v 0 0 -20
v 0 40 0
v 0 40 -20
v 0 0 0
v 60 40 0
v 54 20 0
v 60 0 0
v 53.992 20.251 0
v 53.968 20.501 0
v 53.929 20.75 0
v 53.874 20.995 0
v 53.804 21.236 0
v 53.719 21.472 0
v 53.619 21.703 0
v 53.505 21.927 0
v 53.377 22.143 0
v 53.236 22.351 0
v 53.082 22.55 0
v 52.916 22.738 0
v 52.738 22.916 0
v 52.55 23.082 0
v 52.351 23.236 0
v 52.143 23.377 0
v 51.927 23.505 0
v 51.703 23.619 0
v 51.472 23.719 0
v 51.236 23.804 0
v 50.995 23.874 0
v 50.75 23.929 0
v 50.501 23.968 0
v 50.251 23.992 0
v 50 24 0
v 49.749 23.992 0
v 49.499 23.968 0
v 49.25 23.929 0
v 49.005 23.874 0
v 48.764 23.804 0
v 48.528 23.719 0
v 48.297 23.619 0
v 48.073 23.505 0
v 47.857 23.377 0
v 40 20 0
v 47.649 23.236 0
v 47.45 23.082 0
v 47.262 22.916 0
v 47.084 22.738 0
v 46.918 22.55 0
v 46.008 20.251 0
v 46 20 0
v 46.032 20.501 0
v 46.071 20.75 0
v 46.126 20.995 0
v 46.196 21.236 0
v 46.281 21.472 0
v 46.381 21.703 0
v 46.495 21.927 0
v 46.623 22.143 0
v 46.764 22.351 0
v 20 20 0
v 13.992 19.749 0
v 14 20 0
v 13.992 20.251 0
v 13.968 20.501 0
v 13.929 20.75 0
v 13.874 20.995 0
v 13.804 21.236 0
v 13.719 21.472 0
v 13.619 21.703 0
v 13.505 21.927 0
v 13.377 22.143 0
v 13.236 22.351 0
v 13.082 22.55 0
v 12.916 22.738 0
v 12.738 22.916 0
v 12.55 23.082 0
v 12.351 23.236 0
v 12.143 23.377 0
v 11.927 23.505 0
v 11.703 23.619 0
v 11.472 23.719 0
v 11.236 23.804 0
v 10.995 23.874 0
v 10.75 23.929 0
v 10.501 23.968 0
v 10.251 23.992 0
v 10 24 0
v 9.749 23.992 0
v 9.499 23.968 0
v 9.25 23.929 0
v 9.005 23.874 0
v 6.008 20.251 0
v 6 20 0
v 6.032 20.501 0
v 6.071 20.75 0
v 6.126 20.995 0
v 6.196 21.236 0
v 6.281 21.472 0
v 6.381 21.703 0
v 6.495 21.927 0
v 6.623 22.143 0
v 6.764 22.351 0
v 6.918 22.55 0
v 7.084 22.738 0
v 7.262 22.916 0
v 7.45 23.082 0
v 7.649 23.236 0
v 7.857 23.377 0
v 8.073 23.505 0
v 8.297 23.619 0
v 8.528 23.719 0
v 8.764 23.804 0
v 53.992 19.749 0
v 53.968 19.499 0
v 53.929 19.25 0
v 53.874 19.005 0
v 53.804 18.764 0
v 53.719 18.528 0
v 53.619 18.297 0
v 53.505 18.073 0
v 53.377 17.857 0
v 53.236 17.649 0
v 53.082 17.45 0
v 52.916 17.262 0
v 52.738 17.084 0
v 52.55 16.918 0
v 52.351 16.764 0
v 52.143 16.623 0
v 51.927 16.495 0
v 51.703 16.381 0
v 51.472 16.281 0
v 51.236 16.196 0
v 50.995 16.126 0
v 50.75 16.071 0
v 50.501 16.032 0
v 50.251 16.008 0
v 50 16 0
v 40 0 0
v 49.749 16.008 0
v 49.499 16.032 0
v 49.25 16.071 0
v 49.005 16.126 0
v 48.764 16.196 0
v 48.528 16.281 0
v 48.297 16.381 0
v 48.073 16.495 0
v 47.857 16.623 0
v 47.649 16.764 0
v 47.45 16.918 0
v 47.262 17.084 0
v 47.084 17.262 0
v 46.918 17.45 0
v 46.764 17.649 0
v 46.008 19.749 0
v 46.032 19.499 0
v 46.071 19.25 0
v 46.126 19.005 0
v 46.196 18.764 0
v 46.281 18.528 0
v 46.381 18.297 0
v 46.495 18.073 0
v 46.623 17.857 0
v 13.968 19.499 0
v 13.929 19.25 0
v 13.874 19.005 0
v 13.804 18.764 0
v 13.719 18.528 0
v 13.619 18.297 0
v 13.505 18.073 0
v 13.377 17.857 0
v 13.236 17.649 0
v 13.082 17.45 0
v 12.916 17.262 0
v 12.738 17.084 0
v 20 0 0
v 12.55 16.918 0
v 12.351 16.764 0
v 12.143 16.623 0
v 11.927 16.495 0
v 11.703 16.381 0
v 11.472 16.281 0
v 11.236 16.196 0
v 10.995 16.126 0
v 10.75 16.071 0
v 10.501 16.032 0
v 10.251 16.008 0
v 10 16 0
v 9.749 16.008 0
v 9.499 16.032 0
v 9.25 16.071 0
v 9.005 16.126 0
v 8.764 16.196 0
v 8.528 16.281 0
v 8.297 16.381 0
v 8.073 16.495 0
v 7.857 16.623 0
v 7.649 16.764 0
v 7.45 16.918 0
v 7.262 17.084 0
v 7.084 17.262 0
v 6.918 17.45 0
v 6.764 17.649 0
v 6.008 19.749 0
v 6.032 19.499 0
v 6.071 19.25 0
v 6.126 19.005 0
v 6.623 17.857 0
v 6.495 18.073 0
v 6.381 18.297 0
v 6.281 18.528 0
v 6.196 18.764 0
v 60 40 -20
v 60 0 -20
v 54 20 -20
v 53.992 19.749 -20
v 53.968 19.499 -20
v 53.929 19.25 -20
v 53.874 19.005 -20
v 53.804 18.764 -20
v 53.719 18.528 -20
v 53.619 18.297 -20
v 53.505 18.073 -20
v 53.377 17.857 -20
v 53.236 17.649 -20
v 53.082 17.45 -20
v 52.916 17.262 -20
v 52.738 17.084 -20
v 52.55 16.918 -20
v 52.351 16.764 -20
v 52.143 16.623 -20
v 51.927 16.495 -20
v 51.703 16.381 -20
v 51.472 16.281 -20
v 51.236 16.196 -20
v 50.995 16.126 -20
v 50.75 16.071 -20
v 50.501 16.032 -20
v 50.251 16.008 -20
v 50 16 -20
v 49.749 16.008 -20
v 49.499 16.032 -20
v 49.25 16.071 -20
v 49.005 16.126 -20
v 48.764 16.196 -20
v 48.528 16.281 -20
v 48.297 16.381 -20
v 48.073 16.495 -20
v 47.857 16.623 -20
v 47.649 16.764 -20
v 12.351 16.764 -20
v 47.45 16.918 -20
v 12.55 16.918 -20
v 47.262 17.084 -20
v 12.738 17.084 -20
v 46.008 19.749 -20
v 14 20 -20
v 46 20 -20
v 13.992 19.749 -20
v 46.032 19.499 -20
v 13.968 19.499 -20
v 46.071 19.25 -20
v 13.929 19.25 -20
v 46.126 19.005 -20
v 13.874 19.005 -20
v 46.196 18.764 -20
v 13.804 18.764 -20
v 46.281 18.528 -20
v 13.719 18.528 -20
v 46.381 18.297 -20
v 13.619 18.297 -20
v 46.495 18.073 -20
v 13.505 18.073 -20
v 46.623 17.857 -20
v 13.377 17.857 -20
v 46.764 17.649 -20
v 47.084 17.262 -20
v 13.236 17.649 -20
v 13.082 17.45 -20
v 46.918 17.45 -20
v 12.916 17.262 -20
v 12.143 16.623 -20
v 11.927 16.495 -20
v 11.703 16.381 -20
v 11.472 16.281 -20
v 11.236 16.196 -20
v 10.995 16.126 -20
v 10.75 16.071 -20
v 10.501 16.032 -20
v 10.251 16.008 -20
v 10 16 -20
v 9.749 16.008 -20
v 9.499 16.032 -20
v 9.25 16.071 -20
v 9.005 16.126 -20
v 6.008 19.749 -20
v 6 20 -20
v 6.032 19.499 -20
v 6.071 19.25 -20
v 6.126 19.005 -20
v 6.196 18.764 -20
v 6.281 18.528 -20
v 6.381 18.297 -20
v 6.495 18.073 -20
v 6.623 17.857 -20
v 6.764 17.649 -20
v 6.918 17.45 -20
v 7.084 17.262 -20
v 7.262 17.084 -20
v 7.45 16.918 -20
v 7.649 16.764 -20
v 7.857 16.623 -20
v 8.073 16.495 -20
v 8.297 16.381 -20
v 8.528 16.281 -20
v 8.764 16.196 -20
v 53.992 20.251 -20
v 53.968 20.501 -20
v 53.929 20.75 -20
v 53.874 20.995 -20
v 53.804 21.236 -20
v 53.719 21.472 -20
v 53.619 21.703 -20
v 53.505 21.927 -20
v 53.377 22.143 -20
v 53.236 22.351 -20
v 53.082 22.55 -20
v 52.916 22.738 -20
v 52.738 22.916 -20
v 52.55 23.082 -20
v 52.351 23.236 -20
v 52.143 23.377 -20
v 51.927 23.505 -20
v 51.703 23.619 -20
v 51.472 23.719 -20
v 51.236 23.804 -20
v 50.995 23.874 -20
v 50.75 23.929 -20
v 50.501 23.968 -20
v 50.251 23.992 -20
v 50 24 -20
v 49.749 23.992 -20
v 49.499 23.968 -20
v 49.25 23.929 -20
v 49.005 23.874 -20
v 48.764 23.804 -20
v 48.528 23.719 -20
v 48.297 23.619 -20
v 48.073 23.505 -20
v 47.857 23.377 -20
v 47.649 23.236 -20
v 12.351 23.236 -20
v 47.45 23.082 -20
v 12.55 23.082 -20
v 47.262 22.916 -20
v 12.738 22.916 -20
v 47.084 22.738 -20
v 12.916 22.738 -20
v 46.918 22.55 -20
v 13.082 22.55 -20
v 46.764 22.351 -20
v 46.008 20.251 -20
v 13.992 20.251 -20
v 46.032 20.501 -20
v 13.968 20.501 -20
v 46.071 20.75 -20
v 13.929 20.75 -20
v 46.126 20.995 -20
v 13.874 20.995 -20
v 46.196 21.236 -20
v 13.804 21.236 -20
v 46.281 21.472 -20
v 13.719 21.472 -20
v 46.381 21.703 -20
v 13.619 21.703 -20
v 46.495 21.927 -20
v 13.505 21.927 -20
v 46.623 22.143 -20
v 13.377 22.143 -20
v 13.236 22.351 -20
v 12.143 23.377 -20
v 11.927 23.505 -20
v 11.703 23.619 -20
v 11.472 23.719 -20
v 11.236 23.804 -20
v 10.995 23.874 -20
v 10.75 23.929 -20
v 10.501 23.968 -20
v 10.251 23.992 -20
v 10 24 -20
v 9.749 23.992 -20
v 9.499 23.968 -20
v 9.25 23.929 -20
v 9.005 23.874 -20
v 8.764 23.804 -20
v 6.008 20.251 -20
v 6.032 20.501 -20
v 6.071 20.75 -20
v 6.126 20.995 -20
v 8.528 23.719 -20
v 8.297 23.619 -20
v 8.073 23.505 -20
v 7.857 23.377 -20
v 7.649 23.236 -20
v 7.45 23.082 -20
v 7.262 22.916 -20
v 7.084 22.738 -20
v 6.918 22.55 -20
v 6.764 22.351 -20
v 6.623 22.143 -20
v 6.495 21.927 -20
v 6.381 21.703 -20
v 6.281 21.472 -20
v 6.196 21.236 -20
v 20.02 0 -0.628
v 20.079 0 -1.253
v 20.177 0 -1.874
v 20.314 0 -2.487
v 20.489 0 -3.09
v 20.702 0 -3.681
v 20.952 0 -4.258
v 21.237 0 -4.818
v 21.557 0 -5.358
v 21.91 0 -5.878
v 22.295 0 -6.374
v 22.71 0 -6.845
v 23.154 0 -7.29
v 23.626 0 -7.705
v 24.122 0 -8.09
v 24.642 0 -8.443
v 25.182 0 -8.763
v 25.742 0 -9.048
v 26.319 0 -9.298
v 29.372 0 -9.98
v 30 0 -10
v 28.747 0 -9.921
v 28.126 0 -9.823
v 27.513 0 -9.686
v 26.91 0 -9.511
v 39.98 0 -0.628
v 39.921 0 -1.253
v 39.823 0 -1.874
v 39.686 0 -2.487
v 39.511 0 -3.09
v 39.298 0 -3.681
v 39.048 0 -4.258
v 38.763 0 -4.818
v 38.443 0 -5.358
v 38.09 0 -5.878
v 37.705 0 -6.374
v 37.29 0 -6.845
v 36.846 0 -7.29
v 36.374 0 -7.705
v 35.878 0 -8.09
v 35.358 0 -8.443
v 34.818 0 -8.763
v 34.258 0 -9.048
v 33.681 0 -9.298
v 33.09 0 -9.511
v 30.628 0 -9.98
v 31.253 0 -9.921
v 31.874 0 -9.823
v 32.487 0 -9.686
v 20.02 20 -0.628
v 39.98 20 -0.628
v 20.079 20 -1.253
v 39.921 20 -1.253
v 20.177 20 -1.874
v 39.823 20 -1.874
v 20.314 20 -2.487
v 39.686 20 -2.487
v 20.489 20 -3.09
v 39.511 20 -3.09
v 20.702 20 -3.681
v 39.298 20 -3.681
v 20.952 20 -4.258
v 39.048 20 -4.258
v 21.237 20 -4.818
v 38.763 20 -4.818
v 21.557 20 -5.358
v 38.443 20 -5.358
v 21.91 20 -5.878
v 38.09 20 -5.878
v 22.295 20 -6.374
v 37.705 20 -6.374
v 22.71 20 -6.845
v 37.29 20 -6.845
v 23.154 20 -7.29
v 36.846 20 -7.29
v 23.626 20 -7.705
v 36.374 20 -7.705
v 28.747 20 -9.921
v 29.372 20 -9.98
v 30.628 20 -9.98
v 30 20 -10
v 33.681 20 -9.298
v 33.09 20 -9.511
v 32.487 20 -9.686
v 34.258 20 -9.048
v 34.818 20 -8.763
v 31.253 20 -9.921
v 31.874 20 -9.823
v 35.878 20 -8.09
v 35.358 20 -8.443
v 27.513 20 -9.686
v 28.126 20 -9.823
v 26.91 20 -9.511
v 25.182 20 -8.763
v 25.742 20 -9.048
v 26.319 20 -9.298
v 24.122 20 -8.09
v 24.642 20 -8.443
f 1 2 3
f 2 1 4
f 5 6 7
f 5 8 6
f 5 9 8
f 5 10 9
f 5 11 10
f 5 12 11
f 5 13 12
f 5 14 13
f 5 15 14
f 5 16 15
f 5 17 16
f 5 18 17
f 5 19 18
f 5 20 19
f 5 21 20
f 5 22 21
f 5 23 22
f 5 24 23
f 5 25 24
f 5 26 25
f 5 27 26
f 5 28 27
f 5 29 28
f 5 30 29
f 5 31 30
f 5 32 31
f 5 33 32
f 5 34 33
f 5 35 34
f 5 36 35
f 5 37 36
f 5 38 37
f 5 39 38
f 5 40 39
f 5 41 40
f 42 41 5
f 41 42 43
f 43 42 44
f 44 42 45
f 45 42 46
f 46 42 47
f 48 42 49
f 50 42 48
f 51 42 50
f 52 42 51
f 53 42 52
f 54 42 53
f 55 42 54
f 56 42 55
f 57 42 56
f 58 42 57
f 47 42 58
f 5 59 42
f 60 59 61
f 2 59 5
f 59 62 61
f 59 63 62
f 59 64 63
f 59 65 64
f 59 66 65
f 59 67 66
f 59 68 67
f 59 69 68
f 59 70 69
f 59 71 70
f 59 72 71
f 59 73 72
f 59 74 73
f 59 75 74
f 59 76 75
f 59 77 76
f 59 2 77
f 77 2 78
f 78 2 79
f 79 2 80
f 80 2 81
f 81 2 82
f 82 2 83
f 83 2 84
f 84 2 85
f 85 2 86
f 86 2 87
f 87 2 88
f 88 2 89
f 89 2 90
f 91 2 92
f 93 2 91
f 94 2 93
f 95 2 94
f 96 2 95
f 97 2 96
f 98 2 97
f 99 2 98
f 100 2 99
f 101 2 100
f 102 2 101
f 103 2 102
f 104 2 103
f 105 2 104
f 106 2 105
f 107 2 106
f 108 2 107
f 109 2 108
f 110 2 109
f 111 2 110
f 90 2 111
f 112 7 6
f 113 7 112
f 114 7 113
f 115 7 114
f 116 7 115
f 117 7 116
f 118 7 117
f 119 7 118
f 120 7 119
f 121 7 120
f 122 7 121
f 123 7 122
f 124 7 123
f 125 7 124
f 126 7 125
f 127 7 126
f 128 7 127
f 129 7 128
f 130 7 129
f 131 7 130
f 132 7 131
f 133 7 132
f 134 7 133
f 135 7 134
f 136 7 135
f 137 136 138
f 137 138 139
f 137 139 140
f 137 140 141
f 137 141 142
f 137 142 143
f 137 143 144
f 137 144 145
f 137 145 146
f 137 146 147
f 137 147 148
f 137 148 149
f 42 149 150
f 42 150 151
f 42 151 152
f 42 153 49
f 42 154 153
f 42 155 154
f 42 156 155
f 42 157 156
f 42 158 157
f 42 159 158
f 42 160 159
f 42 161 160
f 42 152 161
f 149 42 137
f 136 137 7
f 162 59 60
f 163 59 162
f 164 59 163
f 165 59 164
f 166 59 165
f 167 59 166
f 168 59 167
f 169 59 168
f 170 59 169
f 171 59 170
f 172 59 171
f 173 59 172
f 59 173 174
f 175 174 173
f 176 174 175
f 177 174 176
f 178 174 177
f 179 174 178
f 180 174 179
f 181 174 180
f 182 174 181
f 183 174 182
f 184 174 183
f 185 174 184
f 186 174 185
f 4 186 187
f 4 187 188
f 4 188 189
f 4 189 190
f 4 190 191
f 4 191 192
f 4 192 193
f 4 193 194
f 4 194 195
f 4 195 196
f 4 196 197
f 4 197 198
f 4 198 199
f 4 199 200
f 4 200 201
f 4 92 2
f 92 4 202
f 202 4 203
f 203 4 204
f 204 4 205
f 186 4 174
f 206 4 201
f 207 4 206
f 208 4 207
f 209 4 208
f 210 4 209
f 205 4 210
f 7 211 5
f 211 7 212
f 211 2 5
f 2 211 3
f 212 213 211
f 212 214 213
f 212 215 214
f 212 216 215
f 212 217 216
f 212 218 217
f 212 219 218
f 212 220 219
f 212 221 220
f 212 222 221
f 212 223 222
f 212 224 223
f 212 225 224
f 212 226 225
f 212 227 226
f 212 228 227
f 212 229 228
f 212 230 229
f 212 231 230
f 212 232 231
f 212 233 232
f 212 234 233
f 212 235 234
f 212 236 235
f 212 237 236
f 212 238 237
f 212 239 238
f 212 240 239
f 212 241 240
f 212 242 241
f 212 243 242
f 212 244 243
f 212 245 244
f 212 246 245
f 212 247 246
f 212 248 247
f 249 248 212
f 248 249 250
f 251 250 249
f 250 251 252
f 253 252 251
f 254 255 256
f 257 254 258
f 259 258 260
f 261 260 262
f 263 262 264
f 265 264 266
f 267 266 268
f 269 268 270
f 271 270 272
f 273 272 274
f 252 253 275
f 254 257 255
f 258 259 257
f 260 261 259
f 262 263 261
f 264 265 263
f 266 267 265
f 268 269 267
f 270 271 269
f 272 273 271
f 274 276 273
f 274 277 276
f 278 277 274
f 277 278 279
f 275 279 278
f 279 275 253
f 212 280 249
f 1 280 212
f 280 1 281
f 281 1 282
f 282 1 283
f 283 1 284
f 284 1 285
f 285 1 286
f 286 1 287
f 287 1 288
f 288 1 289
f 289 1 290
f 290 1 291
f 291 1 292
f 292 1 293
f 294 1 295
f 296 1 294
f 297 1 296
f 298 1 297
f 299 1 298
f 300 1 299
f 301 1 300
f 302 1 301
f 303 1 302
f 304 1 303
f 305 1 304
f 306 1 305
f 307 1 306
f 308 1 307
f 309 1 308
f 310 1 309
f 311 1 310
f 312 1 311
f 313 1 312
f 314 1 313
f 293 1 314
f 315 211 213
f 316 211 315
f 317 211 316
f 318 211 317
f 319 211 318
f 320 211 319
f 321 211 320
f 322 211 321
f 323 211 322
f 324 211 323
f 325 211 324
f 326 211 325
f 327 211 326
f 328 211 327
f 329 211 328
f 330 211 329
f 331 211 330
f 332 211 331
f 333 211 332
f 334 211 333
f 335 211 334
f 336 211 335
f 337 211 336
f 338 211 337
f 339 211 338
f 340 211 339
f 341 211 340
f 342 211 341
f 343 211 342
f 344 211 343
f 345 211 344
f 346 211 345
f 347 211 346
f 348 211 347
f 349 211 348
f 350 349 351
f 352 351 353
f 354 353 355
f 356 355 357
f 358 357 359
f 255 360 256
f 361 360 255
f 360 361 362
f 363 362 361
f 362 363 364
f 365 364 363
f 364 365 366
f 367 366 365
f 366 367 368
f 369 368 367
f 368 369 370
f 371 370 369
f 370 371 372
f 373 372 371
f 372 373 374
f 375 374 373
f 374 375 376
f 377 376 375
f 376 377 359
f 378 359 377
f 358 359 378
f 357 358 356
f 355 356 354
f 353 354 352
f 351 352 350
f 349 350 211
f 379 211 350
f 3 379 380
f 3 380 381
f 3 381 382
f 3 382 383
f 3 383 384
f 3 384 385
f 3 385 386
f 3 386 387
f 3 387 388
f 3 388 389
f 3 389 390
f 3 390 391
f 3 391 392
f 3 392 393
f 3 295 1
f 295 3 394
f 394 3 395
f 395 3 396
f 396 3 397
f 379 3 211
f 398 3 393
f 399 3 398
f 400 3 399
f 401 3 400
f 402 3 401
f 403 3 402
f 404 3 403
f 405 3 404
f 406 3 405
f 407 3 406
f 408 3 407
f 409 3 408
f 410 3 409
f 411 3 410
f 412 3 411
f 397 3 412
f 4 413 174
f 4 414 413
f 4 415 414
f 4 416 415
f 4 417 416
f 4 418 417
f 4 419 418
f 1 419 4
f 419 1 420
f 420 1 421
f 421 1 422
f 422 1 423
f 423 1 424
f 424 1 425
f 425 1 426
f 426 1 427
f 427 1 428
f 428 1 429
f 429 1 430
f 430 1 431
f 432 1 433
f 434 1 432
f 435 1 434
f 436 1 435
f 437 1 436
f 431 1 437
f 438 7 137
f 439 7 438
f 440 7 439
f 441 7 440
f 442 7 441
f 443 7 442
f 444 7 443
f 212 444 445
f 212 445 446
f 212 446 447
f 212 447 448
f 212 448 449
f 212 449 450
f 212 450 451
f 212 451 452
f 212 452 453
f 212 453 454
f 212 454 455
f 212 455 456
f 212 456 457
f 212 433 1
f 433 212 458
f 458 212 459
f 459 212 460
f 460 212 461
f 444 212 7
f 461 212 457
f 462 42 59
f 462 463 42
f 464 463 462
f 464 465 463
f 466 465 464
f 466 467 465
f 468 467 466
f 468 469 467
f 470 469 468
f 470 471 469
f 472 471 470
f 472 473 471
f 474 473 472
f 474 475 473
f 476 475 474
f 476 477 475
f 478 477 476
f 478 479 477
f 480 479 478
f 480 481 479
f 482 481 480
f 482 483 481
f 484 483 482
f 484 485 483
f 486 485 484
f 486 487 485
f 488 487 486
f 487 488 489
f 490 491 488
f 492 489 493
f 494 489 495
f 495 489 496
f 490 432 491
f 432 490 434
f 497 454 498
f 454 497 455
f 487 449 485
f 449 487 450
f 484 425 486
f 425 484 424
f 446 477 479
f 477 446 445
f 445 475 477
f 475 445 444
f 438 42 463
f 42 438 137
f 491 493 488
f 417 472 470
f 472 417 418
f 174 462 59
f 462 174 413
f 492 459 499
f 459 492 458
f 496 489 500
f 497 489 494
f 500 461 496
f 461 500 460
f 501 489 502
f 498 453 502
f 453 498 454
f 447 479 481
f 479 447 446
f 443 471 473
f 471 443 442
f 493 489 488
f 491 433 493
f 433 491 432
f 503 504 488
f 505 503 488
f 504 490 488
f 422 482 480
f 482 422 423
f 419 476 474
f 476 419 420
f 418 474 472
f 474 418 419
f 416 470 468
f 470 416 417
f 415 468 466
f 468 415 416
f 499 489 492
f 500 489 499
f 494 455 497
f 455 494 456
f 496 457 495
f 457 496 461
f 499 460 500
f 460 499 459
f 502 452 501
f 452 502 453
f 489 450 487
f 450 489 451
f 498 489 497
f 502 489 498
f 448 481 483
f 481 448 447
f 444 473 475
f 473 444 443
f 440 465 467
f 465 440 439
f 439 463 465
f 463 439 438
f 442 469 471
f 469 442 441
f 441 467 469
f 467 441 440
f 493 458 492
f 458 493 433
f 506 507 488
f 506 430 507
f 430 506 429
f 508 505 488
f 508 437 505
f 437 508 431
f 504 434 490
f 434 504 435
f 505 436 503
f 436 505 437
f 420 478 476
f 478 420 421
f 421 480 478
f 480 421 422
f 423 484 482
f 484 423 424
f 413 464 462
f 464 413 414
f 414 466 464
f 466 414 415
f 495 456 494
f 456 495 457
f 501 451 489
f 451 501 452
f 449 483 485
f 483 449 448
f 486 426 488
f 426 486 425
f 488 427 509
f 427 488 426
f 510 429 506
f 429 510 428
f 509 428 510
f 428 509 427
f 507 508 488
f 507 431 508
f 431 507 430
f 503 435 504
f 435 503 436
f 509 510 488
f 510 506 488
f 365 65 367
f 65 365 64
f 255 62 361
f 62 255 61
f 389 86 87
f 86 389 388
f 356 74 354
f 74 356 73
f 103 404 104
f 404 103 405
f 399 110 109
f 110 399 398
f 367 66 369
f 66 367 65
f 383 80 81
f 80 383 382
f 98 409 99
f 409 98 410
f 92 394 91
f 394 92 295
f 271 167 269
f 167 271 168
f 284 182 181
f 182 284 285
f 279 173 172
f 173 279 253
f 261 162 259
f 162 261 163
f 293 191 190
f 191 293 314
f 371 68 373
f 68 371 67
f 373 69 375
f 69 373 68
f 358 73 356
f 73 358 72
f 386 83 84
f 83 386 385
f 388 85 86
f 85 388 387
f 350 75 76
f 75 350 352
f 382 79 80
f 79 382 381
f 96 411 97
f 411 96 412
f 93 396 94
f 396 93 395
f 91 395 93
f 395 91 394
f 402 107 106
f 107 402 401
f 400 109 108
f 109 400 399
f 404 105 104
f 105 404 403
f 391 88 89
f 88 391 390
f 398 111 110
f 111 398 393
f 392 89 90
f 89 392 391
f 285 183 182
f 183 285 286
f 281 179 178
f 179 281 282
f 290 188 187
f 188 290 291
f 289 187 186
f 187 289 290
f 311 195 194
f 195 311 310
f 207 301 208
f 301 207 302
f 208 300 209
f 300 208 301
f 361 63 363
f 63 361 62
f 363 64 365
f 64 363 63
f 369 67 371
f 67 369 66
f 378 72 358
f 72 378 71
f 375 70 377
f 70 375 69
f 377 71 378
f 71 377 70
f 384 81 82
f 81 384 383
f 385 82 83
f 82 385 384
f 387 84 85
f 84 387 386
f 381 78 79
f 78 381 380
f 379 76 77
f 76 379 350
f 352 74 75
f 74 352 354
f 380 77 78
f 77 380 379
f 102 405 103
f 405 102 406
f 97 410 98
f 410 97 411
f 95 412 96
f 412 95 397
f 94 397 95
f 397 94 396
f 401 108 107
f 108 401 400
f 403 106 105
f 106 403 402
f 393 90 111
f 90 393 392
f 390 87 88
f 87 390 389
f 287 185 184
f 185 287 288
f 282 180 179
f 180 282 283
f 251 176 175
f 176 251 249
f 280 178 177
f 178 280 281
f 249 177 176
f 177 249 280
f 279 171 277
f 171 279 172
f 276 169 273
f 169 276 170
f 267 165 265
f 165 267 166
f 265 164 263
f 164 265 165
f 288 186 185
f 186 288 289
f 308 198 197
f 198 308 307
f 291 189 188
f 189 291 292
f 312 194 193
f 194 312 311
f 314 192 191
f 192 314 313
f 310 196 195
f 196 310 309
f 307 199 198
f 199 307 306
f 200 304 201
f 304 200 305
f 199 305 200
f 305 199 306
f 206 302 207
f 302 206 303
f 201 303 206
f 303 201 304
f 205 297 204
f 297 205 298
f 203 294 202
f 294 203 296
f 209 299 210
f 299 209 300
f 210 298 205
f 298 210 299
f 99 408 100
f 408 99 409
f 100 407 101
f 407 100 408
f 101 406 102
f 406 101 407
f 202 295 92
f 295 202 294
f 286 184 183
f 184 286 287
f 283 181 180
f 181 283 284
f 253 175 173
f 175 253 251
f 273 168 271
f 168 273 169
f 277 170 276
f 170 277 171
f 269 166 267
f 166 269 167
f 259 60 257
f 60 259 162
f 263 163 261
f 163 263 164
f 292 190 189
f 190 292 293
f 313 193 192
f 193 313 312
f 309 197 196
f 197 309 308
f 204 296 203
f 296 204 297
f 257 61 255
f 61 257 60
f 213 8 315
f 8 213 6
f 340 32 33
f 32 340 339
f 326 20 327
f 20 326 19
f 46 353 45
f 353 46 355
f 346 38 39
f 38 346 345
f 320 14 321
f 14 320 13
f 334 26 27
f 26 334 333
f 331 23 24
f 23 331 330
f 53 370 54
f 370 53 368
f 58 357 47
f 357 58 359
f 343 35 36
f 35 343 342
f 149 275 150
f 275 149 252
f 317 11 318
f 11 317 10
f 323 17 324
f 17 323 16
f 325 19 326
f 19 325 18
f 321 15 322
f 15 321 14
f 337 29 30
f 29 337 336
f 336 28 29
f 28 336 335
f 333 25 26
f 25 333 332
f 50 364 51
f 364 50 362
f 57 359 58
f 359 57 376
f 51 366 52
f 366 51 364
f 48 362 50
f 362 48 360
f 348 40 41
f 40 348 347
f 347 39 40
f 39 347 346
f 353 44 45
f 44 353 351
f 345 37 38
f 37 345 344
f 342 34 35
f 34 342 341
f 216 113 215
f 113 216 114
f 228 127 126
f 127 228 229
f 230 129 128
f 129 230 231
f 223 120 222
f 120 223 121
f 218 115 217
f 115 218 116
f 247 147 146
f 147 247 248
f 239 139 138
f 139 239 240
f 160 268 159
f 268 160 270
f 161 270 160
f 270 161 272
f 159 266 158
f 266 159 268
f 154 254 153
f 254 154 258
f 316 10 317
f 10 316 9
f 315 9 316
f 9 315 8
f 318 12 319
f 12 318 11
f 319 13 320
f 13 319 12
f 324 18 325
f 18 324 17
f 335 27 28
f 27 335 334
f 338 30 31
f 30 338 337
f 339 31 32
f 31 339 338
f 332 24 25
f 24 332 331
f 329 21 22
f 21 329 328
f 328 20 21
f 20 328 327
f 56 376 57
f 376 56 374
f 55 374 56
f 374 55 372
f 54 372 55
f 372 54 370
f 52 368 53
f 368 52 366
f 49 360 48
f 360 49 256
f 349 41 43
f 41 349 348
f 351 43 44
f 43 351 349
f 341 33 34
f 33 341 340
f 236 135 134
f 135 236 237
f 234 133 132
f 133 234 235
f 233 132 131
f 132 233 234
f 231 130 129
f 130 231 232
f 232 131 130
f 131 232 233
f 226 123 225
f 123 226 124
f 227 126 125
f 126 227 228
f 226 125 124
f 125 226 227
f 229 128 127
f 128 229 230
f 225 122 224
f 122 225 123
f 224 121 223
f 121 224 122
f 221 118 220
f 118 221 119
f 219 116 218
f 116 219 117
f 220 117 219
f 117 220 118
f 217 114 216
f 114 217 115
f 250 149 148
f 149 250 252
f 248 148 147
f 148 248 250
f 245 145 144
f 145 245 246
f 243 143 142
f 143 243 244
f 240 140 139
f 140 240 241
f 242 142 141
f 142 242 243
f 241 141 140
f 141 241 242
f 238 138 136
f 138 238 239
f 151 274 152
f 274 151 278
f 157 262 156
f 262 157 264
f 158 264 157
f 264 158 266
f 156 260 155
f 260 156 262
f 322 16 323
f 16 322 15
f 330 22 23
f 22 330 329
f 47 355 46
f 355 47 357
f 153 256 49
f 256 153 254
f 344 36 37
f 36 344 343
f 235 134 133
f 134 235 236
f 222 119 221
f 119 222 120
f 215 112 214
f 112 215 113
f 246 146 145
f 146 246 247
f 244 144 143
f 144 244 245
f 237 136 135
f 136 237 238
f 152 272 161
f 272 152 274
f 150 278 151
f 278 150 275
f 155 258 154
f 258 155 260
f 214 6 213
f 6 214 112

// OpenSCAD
$fn=100;

translate([0,0,-20]) difference() {
cube([60,40,20]);
translate([30,20,20]) rotate([90,0]) cylinder(30,10,10);
    translate([10,20,-10]) cylinder(40,4,4);
    translate([50,20,-10]) cylinder(40,4,4);
}
